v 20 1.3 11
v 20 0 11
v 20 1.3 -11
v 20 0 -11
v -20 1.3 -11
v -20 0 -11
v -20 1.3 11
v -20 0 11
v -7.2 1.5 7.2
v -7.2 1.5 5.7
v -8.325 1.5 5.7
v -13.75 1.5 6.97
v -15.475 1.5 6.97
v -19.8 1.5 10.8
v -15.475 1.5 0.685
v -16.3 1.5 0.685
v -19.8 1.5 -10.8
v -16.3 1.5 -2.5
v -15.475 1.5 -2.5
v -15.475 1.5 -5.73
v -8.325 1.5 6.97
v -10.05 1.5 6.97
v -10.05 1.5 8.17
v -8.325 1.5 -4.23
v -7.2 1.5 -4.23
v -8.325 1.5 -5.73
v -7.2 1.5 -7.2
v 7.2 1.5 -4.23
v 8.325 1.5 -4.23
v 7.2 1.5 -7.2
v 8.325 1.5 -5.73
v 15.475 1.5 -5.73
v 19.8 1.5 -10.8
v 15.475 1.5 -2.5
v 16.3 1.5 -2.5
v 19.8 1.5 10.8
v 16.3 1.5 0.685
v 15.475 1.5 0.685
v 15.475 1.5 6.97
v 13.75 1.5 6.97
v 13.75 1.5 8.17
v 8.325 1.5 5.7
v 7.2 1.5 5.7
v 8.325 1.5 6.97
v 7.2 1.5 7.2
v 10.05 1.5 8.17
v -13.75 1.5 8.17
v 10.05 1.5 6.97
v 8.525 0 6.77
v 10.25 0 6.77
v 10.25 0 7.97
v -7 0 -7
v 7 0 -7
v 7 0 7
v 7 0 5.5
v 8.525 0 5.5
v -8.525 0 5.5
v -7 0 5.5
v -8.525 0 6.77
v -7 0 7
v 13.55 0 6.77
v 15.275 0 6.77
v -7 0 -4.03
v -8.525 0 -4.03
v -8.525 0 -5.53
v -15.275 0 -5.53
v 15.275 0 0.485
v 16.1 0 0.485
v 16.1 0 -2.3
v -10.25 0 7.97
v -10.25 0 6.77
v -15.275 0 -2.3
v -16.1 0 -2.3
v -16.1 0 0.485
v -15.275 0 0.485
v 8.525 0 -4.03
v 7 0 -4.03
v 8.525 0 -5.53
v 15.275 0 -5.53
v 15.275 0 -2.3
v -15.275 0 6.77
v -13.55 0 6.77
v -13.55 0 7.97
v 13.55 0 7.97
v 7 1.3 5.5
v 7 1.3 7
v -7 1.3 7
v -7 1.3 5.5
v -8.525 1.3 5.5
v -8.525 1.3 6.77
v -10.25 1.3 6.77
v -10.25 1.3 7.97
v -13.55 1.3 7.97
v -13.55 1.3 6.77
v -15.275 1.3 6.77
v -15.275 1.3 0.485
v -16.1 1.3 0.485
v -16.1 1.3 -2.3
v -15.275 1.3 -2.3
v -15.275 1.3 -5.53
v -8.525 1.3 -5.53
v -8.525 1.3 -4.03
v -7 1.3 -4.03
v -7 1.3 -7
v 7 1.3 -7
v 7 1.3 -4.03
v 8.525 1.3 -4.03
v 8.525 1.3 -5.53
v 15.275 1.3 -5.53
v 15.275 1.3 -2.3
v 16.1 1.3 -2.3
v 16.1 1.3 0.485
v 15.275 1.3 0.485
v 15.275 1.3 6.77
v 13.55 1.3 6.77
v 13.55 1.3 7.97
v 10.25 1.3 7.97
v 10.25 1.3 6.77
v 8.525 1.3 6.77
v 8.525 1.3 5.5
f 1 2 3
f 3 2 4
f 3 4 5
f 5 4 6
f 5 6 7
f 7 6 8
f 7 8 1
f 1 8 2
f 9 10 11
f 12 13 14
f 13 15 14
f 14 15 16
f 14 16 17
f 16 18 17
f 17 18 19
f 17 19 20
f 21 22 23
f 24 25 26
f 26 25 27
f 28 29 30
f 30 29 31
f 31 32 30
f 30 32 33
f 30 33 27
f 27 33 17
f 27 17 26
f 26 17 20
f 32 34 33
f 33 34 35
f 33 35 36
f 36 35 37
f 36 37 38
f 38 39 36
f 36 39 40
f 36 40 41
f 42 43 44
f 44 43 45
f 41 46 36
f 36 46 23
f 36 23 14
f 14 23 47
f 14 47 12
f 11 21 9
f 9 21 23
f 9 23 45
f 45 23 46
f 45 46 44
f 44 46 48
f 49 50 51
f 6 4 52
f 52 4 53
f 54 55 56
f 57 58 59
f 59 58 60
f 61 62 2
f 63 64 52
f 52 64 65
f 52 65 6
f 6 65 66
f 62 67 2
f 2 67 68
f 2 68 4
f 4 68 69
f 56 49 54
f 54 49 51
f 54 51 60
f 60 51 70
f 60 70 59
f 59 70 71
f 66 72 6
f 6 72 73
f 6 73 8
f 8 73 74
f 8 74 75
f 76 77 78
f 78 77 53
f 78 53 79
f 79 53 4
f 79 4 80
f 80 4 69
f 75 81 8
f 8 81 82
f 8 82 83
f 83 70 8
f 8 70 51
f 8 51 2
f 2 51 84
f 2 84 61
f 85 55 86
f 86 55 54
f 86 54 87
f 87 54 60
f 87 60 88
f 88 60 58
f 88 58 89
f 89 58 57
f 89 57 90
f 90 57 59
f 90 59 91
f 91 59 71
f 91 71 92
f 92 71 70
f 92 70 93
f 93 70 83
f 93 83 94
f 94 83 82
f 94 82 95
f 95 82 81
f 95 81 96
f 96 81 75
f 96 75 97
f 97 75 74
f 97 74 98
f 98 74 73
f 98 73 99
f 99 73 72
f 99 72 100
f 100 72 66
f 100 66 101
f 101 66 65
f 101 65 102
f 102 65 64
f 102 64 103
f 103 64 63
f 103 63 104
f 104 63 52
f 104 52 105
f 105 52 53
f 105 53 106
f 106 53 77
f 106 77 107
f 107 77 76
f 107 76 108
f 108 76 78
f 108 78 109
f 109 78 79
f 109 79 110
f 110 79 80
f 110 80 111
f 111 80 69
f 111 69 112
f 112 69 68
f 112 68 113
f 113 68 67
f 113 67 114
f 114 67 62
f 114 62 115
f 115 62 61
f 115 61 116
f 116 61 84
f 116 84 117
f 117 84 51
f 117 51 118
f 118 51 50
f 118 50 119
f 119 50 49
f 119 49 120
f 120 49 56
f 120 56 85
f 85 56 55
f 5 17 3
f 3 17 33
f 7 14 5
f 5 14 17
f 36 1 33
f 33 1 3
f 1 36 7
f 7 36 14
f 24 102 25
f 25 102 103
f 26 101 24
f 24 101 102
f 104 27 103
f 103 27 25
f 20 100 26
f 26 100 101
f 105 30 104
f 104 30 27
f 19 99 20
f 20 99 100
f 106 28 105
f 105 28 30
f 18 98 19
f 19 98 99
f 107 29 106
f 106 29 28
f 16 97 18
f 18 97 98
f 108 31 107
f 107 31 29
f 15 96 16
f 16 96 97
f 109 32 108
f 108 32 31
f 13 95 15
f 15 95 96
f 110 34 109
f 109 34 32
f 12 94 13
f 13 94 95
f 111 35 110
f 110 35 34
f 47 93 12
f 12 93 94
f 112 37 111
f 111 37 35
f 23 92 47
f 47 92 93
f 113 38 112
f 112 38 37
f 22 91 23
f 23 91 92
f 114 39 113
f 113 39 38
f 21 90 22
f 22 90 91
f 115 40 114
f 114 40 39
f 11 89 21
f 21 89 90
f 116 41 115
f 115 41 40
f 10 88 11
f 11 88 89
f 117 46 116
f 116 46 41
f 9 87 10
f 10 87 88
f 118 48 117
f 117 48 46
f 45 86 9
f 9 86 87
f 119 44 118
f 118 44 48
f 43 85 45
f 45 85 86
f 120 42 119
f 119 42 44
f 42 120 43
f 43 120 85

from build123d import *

# Parameters (mm, degrees)
SKETCH1_W           = 40
SKETCH1_H           = 22
BOSS_EXTRUDE1_DEPTH = 1.5
CUT_EXTRUDE1_DEPTH  = 2.5
CHAMFER1_SIZE       = 0.2


with BuildPart() as part:
    # Sketch1 → Boss-Extrude1 (new body)
    with BuildSketch(Plane(origin=(0, 0, 0), x_dir=(1, 0, 0), z_dir=(0, 1, 0))):
        Rectangle(SKETCH1_W, SKETCH1_H)
    extrude(amount=BOSS_EXTRUDE1_DEPTH)

    # Sketch2 → Cut-Extrude1 (cut, through all)
    with BuildSketch(Plane(origin=(0, 1.5, 0), x_dir=(1, 0, 0), z_dir=(0, 1, 0))):
        Polygon((-7, 4.03), (-8.525, 4.03), (-8.525, 5.53), (-15.275, 5.53), (-15.275, 2.3), (-16.1, 2.3), (-16.1, -0.485), (-15.275, -0.485), (-15.275, -6.77), (-13.55, -6.77), (-13.55, -7.97), (-10.25, -7.97), (-10.25, -6.77), (-8.525, -6.77), (-8.525, -5.5), (-7, -5.5), (-7, -7), (7, -7), (7, -5.5), (8.525, -5.5), (8.525, -6.77), (10.25, -6.77), (10.25, -7.97), (13.55, -7.97), (13.55, -6.77), (15.275, -6.77), (15.275, -0.485), (16.1, -0.485), (16.1, 2.3), (15.275, 2.3), (15.275, 5.53), (8.525, 5.53), (8.525, 4.03), (7, 4.03), (7, 7), (-7, 7), align=None)
    extrude(amount=-CUT_EXTRUDE1_DEPTH, mode=Mode.SUBTRACT)

    # Chamfer1
    chamfer1_edges = [part.edges().sort_by_distance(p)[0] for p in [
        (-20, 1.5, 0),
        (0, 1.5, 11),
        (20, 1.5, 0),
        (7, 1.5, 6.25),
        (7.7625, 1.5, 5.5),
        (8.525, 1.5, 6.135),
        (9.3875, 1.5, 6.77),
        (10.25, 1.5, 7.37),
        (11.9, 1.5, 7.97),
        (13.55, 1.5, 7.37),
        (14.4125, 1.5, 6.77),
        (15.275, 1.5, 3.6275),
        (15.6875, 1.5, 0.485),
        (16.1, 1.5, -0.9075),
        (15.6875, 1.5, -2.3),
        (15.275, 1.5, -3.915),
        (11.9, 1.5, -5.53),
        (8.525, 1.5, -4.78),
        (7.7625, 1.5, -4.03),
        (7, 1.5, -5.515),
        (0, 1.5, -7),
        (-7, 1.5, -5.515),
        (-7.7625, 1.5, -4.03),
        (-8.525, 1.5, -4.78),
        (-11.9, 1.5, -5.53),
        (-15.275, 1.5, -3.915),
        (-15.6875, 1.5, -2.3),
        (-16.1, 1.5, -0.9075),
        (-15.6875, 1.5, 0.485),
        (-15.275, 1.5, 3.6275),
        (-14.4125, 1.5, 6.77),
        (-13.55, 1.5, 7.37),
        (-11.9, 1.5, 7.97),
        (-10.25, 1.5, 7.37),
        (-9.3875, 1.5, 6.77),
        (-8.525, 1.5, 6.135),
        (-7.7625, 1.5, 5.5),
        (-7, 1.5, 6.25),
        (0, 1.5, 7),
        (0, 1.5, -11),
    ]]
    chamfer(chamfer1_edges, length=CHAMFER1_SIZE)


solid = part.part
